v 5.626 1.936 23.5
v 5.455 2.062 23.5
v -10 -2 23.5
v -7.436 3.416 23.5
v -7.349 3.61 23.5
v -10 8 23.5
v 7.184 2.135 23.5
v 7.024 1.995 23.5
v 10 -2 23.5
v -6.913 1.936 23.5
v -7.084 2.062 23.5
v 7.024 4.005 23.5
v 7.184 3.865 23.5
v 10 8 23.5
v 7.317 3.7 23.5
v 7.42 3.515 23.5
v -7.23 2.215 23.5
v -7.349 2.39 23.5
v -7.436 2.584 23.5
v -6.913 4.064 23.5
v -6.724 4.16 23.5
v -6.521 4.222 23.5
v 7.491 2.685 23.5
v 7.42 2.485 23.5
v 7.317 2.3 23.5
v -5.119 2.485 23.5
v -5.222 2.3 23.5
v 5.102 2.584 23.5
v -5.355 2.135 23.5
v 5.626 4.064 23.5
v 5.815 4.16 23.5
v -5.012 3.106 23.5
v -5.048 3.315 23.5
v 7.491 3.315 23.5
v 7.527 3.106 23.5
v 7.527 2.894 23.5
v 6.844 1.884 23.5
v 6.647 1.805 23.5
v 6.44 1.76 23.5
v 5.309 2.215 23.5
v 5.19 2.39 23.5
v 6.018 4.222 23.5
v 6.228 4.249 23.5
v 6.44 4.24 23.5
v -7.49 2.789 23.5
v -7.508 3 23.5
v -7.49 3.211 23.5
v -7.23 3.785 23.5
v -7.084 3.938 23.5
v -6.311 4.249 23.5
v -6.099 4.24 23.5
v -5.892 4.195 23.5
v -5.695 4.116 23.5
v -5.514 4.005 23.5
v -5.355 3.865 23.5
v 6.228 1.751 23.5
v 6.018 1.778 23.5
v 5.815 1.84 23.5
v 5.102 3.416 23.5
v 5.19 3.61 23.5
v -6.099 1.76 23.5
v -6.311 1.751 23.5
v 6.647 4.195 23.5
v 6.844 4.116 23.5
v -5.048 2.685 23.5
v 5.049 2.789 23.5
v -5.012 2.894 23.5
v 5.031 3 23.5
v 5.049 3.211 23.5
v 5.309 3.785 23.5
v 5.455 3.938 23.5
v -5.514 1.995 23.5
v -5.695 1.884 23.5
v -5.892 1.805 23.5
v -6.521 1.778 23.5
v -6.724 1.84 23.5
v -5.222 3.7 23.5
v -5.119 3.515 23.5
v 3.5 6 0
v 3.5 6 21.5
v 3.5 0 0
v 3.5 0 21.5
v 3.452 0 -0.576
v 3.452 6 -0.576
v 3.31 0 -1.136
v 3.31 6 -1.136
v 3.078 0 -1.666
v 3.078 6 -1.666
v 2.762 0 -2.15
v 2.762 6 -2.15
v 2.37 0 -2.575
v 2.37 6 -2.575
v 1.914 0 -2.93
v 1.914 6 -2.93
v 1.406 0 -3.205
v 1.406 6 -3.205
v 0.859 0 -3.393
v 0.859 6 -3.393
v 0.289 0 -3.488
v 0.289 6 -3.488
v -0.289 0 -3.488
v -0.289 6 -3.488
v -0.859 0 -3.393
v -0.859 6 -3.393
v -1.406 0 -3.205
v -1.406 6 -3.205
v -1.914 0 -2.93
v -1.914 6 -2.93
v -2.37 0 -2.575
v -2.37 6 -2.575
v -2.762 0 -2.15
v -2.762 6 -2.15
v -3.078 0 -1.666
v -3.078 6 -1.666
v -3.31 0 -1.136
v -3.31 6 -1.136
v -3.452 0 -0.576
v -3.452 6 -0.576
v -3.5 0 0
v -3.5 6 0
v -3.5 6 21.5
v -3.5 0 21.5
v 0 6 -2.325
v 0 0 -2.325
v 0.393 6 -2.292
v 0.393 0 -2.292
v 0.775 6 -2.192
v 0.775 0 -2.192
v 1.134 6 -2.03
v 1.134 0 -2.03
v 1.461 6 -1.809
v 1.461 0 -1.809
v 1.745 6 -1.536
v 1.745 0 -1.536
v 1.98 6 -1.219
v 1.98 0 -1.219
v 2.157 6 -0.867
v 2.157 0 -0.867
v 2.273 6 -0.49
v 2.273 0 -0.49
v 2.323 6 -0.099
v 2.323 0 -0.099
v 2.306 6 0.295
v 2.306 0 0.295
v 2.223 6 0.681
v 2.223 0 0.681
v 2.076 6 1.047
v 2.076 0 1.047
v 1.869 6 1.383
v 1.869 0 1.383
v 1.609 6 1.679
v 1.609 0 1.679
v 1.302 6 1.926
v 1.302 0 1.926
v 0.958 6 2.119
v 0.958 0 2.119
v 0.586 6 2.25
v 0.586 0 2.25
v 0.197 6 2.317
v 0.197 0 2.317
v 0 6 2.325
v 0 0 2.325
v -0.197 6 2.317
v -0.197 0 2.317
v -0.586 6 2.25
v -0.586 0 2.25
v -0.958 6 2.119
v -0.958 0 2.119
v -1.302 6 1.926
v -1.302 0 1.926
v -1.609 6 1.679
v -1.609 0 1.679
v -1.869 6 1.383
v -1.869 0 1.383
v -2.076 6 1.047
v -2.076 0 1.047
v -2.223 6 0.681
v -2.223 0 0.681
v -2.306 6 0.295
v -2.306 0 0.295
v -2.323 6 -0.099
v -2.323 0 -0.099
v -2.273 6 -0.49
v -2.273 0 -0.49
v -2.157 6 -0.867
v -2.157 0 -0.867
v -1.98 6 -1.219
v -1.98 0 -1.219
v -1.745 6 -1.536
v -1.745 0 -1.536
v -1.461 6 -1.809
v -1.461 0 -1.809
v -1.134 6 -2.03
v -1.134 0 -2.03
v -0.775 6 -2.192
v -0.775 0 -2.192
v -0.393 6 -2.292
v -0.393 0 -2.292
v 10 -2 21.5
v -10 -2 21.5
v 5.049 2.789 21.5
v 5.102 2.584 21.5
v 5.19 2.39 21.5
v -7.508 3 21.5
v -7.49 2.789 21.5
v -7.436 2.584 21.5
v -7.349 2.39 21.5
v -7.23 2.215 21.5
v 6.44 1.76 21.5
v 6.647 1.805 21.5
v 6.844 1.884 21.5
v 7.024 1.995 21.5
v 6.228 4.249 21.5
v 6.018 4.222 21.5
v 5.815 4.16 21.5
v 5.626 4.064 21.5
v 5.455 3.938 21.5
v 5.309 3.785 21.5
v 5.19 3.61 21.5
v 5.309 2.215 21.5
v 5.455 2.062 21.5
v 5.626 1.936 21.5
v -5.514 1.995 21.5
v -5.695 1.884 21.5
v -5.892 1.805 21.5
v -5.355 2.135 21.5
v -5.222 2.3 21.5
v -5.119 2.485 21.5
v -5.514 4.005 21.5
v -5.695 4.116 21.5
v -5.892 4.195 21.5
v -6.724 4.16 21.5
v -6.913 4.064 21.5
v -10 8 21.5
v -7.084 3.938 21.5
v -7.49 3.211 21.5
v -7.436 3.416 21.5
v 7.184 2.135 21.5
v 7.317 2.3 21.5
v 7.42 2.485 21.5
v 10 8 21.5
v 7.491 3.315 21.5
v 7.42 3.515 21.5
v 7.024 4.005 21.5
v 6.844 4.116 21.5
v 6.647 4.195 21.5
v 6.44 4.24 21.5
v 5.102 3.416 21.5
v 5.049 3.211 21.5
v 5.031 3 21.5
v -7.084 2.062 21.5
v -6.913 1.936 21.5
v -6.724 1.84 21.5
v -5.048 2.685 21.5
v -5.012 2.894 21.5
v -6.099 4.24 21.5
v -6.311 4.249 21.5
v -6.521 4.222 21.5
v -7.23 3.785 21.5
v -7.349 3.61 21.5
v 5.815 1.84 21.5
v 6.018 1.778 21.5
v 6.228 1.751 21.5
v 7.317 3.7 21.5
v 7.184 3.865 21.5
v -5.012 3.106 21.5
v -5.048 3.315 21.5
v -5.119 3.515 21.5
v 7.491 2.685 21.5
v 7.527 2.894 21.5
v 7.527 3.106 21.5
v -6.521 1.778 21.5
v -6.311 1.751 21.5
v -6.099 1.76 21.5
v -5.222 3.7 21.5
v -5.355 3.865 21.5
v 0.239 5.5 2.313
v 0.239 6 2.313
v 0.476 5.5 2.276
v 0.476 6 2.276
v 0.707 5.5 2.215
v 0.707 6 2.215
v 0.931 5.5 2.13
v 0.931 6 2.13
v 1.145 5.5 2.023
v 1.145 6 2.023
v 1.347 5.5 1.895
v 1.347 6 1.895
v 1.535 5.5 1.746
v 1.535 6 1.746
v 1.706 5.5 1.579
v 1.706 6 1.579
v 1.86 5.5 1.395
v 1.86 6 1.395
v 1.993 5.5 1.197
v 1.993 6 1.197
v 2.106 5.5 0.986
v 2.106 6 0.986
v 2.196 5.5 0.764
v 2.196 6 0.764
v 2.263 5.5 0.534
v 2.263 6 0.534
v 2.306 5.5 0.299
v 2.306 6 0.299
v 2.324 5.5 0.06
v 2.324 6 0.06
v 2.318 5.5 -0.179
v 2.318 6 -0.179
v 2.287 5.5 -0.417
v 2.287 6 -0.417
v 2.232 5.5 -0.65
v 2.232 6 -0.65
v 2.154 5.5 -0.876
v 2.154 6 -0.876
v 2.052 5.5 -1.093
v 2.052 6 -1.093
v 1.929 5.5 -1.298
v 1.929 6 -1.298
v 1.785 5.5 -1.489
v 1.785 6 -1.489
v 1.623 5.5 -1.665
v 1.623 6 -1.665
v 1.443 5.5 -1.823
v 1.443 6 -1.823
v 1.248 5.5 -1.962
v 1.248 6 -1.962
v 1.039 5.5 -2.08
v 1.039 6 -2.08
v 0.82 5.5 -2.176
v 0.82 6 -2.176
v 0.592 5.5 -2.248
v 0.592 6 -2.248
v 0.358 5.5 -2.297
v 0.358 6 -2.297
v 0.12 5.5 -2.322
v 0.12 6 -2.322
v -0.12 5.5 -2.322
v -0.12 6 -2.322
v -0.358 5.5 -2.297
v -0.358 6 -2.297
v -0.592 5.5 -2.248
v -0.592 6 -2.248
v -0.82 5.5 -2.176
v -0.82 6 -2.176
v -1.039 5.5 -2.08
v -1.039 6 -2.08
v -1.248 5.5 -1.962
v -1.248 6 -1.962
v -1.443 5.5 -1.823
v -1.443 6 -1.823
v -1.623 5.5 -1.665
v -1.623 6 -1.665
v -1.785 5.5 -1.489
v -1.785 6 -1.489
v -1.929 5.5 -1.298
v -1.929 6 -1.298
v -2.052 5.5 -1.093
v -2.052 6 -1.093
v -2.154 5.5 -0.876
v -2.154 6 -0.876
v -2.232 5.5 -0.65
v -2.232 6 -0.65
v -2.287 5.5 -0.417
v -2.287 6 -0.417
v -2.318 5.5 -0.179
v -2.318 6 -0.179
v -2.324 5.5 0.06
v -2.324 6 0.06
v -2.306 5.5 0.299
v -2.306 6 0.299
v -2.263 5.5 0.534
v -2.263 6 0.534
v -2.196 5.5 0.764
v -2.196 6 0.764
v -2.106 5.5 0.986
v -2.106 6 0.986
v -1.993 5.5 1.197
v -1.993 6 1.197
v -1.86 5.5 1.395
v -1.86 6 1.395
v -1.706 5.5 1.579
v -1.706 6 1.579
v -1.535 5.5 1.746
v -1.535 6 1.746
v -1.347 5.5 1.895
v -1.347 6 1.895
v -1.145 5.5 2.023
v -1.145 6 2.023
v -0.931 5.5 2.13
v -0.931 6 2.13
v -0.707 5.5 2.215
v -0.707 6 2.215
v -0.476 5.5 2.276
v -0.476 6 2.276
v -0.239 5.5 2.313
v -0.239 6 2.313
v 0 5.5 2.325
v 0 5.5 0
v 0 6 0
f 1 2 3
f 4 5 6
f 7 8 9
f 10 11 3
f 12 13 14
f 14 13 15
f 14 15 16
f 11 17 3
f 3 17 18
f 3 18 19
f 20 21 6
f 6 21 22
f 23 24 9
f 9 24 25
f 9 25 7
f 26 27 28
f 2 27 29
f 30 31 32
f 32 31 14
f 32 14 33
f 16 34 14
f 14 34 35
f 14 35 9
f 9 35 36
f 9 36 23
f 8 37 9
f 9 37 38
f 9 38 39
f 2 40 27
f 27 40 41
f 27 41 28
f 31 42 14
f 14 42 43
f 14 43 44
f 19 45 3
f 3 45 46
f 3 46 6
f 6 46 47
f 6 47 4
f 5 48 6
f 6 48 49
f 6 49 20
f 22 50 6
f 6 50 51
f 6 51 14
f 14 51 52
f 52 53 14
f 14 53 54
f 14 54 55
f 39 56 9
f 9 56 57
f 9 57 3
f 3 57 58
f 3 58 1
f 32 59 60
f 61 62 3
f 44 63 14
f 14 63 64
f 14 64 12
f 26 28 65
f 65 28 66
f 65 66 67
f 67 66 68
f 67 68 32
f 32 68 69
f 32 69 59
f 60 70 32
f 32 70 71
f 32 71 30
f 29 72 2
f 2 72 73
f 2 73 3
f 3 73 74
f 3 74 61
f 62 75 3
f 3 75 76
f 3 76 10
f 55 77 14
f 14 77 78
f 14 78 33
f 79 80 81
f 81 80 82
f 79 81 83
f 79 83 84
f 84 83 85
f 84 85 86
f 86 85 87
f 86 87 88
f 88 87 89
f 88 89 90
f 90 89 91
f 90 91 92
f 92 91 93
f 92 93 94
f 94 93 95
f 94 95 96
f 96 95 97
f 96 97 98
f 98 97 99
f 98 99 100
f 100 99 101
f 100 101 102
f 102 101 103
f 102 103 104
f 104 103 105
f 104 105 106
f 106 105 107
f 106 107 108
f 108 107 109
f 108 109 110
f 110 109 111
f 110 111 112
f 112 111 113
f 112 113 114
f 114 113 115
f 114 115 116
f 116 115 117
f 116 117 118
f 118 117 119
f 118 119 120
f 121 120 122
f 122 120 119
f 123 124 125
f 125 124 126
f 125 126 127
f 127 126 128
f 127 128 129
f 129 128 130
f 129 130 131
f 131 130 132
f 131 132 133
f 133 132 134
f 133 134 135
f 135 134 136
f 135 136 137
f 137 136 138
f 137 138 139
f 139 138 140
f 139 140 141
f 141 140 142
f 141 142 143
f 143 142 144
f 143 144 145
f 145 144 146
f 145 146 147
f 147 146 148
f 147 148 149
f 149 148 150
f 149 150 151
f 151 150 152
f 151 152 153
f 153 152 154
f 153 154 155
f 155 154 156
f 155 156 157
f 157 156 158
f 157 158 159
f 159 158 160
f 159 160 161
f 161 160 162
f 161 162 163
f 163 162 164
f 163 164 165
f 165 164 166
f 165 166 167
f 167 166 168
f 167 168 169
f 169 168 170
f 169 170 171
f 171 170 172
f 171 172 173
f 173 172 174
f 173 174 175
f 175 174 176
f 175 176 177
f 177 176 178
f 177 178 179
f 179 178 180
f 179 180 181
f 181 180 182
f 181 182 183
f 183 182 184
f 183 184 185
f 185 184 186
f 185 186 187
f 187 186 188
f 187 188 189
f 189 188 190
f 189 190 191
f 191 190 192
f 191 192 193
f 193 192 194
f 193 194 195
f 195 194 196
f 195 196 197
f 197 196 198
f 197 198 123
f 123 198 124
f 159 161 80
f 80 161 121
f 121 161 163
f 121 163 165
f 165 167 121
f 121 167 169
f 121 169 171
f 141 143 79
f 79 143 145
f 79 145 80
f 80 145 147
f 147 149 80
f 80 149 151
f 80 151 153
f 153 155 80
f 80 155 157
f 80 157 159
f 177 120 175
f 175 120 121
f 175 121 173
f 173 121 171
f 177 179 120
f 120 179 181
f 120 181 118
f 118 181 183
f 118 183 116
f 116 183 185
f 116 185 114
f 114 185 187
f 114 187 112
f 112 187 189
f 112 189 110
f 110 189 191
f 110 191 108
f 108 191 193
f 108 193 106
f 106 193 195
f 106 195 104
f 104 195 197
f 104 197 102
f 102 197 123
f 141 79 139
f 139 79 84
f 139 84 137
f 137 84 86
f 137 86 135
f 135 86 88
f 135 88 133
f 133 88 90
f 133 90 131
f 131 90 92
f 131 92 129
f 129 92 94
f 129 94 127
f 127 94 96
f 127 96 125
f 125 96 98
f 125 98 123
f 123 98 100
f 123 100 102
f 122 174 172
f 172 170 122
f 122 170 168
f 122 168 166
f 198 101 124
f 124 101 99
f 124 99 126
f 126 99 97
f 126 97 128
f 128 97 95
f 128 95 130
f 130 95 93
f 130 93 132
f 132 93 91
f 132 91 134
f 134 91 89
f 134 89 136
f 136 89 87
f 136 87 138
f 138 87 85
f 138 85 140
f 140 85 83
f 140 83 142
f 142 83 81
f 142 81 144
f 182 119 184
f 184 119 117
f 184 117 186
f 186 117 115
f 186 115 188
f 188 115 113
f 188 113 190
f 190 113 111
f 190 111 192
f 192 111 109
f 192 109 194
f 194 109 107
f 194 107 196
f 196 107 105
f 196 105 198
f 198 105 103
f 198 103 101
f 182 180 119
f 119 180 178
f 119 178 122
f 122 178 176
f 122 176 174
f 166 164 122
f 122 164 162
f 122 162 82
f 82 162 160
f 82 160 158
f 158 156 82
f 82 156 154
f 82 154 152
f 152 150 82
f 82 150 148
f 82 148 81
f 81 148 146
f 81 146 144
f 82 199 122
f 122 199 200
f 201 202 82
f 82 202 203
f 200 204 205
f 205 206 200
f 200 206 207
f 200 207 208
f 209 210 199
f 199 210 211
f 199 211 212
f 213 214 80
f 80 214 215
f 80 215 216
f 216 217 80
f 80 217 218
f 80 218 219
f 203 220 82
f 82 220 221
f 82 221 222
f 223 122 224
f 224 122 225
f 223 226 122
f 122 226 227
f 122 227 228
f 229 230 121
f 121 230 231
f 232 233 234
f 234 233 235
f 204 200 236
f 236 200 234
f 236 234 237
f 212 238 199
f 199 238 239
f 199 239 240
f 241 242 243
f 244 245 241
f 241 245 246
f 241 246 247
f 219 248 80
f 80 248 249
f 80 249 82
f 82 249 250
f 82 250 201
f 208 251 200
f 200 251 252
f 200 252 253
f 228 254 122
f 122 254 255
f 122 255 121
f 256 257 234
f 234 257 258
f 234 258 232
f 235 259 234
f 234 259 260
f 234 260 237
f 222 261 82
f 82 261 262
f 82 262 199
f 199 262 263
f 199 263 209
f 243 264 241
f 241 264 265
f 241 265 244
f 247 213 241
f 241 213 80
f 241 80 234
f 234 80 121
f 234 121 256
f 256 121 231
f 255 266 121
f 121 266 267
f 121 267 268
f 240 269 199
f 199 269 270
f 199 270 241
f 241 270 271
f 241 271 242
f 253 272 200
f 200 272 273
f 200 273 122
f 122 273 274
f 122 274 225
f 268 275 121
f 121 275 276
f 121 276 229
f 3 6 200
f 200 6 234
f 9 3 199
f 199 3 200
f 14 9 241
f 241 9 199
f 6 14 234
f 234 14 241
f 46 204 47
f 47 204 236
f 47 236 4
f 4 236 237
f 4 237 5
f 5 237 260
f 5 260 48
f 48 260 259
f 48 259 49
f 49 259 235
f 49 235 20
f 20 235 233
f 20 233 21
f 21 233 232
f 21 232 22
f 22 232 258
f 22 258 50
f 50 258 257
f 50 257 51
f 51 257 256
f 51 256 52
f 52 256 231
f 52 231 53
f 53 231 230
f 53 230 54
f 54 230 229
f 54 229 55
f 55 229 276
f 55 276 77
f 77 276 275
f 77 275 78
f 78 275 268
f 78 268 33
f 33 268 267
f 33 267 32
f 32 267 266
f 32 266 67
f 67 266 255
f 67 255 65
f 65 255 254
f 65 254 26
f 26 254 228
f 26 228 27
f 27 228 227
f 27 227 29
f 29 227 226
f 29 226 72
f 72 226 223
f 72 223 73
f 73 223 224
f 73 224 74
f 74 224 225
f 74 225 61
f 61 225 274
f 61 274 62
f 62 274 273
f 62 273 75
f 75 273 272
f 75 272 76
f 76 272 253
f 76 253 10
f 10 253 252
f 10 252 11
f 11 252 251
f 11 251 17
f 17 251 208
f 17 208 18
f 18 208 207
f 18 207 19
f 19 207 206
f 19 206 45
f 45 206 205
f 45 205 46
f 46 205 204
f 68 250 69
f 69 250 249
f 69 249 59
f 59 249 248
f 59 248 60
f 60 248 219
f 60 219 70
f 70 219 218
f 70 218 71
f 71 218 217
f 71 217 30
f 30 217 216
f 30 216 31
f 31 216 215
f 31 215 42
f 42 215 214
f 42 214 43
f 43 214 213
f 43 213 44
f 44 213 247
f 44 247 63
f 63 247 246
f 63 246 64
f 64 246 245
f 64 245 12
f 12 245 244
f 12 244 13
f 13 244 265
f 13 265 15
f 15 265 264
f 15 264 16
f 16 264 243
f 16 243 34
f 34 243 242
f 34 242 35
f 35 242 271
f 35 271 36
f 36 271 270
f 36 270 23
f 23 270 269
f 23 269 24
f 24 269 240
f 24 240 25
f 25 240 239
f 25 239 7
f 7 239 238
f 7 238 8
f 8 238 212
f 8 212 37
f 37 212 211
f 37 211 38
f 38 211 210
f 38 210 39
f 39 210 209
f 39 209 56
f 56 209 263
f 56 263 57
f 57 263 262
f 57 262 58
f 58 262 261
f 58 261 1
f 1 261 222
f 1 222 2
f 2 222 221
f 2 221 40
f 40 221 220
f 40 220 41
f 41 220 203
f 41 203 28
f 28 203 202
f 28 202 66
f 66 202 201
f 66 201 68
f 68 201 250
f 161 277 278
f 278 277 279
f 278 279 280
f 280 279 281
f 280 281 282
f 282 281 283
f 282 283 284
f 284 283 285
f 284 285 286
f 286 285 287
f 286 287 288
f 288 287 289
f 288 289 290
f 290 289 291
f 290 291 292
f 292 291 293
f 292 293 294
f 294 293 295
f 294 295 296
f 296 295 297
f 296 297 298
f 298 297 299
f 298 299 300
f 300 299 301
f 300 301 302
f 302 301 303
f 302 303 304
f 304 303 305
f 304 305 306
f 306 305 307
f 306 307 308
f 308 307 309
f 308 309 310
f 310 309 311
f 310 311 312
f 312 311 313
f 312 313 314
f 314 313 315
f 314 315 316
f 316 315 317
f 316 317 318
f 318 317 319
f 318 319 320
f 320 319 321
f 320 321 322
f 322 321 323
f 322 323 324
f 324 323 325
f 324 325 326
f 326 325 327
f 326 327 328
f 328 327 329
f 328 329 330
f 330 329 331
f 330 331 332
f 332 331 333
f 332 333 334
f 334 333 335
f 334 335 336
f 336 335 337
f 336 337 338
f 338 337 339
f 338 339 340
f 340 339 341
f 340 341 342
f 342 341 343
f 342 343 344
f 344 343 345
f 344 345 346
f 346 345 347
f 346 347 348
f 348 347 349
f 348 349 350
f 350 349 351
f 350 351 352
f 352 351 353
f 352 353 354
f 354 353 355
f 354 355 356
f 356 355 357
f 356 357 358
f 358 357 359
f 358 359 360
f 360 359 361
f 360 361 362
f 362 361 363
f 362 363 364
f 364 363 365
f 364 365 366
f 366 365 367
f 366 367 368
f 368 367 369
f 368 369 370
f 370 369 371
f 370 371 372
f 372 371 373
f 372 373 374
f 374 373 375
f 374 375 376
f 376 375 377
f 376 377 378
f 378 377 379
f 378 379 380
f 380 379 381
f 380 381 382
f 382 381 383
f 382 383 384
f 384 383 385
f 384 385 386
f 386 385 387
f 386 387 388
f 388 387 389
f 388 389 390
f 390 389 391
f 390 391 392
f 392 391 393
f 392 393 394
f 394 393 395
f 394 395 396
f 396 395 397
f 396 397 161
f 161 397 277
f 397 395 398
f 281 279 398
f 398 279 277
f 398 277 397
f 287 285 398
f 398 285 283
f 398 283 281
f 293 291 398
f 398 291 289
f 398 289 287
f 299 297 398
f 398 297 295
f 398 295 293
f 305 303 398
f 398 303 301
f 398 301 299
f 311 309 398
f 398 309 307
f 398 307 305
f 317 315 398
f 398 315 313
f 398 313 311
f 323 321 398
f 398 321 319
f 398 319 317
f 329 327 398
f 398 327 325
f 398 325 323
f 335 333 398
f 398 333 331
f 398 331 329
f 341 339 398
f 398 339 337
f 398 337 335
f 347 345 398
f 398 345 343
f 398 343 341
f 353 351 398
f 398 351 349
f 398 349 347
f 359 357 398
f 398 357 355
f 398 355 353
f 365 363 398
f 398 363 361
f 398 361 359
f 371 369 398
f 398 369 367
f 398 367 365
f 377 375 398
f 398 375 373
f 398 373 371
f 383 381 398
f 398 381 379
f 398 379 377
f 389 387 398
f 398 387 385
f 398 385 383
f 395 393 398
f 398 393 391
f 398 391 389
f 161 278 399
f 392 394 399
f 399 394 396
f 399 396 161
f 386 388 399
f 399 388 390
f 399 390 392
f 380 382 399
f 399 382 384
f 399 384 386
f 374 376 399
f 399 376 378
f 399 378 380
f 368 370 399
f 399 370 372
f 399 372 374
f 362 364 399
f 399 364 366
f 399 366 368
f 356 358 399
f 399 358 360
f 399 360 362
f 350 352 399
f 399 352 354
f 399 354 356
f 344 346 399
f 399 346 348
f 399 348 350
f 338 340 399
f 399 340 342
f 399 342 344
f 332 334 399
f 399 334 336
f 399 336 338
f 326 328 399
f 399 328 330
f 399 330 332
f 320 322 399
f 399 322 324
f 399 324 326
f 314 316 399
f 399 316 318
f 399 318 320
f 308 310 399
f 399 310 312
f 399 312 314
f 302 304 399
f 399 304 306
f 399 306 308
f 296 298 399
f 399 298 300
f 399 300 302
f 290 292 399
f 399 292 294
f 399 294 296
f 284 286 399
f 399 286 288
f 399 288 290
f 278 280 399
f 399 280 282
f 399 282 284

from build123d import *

# Parameters (mm, degrees)
BOSS_EXTRUDE1_DEPTH         = 6
SKETCH2_W                   = 20
SKETCH2_H                   = 10
BOSS_EXTRUDE2_DEPTH         = 2
TAP_DRILL_FOR_M3X0_5_TAP1_D = 2.5
SKETCH5_R                   = 2.325
BOSS_EXTRUDE3_DEPTH         = 0.5


with BuildPart() as part:
    # Sketch1 → Boss-Extrude1 (new body)
    with BuildSketch(Plane(origin=(0, 0, 0), x_dir=(1, 0, 0), z_dir=(0, 1, 0))):
        with BuildLine():
            Line((3.5, -21.5), (3.5, 0))
            ThreePointArc((3.5, 0), (0, -3.5), (-3.5, 0))
            Line((-3.5, 0), (-3.5, -21.5))
            Line((-3.5, -21.5), (3.5, -21.5))
        make_face()
        with BuildLine():
            ThreePointArc((-2.325, 0), (0, 2.325), (2.325, 0))
            Line((2.325, 0), (3.5, 0))
            ThreePointArc((3.5, 0), (0, 3.5), (-3.5, 0))
            Line((-3.5, 0), (-2.325, 0))
        make_face()
        with BuildLine():
            Line((3.5, 0), (2.325, 0))
            ThreePointArc((2.325, 0), (0, -2.325), (-2.325, 0))
            Line((-2.325, 0), (-3.5, 0))
            ThreePointArc((-3.5, 0), (0, -3.5), (3.5, 0))
        make_face()
    extrude(amount=BOSS_EXTRUDE1_DEPTH)

    # Sketch2 → Boss-Extrude2 (add)
    with BuildSketch(Plane.XY.offset(21.5)):
        with Locations((0, 3)):
            Rectangle(SKETCH2_W, SKETCH2_H)
    extrude(amount=BOSS_EXTRUDE2_DEPTH)

    # Tap Drill for M3x0.5 Tap1 (through all)
    with Locations(Plane(origin=(0, 0, 21.5), x_dir=(-1, 0, 0), z_dir=(0, 0, -1))):
        with Locations((6.2576685, 3), (-6.281061653, 3)):
            Hole(TAP_DRILL_FOR_M3X0_5_TAP1_D / 2)


with BuildPart() as body_2:
    # Sketch5 → Boss-Extrude3 (new body)
    with BuildSketch(Plane(origin=(0, 6, 0), x_dir=(1, 0, 0), z_dir=(0, 1, 0))):
        with Locations(Location((0, 0, 0), (0, 0, 270))):
            Circle(SKETCH5_R)
    extrude(amount=-BOSS_EXTRUDE3_DEPTH)


solid = Compound([part.part, body_2.part])
